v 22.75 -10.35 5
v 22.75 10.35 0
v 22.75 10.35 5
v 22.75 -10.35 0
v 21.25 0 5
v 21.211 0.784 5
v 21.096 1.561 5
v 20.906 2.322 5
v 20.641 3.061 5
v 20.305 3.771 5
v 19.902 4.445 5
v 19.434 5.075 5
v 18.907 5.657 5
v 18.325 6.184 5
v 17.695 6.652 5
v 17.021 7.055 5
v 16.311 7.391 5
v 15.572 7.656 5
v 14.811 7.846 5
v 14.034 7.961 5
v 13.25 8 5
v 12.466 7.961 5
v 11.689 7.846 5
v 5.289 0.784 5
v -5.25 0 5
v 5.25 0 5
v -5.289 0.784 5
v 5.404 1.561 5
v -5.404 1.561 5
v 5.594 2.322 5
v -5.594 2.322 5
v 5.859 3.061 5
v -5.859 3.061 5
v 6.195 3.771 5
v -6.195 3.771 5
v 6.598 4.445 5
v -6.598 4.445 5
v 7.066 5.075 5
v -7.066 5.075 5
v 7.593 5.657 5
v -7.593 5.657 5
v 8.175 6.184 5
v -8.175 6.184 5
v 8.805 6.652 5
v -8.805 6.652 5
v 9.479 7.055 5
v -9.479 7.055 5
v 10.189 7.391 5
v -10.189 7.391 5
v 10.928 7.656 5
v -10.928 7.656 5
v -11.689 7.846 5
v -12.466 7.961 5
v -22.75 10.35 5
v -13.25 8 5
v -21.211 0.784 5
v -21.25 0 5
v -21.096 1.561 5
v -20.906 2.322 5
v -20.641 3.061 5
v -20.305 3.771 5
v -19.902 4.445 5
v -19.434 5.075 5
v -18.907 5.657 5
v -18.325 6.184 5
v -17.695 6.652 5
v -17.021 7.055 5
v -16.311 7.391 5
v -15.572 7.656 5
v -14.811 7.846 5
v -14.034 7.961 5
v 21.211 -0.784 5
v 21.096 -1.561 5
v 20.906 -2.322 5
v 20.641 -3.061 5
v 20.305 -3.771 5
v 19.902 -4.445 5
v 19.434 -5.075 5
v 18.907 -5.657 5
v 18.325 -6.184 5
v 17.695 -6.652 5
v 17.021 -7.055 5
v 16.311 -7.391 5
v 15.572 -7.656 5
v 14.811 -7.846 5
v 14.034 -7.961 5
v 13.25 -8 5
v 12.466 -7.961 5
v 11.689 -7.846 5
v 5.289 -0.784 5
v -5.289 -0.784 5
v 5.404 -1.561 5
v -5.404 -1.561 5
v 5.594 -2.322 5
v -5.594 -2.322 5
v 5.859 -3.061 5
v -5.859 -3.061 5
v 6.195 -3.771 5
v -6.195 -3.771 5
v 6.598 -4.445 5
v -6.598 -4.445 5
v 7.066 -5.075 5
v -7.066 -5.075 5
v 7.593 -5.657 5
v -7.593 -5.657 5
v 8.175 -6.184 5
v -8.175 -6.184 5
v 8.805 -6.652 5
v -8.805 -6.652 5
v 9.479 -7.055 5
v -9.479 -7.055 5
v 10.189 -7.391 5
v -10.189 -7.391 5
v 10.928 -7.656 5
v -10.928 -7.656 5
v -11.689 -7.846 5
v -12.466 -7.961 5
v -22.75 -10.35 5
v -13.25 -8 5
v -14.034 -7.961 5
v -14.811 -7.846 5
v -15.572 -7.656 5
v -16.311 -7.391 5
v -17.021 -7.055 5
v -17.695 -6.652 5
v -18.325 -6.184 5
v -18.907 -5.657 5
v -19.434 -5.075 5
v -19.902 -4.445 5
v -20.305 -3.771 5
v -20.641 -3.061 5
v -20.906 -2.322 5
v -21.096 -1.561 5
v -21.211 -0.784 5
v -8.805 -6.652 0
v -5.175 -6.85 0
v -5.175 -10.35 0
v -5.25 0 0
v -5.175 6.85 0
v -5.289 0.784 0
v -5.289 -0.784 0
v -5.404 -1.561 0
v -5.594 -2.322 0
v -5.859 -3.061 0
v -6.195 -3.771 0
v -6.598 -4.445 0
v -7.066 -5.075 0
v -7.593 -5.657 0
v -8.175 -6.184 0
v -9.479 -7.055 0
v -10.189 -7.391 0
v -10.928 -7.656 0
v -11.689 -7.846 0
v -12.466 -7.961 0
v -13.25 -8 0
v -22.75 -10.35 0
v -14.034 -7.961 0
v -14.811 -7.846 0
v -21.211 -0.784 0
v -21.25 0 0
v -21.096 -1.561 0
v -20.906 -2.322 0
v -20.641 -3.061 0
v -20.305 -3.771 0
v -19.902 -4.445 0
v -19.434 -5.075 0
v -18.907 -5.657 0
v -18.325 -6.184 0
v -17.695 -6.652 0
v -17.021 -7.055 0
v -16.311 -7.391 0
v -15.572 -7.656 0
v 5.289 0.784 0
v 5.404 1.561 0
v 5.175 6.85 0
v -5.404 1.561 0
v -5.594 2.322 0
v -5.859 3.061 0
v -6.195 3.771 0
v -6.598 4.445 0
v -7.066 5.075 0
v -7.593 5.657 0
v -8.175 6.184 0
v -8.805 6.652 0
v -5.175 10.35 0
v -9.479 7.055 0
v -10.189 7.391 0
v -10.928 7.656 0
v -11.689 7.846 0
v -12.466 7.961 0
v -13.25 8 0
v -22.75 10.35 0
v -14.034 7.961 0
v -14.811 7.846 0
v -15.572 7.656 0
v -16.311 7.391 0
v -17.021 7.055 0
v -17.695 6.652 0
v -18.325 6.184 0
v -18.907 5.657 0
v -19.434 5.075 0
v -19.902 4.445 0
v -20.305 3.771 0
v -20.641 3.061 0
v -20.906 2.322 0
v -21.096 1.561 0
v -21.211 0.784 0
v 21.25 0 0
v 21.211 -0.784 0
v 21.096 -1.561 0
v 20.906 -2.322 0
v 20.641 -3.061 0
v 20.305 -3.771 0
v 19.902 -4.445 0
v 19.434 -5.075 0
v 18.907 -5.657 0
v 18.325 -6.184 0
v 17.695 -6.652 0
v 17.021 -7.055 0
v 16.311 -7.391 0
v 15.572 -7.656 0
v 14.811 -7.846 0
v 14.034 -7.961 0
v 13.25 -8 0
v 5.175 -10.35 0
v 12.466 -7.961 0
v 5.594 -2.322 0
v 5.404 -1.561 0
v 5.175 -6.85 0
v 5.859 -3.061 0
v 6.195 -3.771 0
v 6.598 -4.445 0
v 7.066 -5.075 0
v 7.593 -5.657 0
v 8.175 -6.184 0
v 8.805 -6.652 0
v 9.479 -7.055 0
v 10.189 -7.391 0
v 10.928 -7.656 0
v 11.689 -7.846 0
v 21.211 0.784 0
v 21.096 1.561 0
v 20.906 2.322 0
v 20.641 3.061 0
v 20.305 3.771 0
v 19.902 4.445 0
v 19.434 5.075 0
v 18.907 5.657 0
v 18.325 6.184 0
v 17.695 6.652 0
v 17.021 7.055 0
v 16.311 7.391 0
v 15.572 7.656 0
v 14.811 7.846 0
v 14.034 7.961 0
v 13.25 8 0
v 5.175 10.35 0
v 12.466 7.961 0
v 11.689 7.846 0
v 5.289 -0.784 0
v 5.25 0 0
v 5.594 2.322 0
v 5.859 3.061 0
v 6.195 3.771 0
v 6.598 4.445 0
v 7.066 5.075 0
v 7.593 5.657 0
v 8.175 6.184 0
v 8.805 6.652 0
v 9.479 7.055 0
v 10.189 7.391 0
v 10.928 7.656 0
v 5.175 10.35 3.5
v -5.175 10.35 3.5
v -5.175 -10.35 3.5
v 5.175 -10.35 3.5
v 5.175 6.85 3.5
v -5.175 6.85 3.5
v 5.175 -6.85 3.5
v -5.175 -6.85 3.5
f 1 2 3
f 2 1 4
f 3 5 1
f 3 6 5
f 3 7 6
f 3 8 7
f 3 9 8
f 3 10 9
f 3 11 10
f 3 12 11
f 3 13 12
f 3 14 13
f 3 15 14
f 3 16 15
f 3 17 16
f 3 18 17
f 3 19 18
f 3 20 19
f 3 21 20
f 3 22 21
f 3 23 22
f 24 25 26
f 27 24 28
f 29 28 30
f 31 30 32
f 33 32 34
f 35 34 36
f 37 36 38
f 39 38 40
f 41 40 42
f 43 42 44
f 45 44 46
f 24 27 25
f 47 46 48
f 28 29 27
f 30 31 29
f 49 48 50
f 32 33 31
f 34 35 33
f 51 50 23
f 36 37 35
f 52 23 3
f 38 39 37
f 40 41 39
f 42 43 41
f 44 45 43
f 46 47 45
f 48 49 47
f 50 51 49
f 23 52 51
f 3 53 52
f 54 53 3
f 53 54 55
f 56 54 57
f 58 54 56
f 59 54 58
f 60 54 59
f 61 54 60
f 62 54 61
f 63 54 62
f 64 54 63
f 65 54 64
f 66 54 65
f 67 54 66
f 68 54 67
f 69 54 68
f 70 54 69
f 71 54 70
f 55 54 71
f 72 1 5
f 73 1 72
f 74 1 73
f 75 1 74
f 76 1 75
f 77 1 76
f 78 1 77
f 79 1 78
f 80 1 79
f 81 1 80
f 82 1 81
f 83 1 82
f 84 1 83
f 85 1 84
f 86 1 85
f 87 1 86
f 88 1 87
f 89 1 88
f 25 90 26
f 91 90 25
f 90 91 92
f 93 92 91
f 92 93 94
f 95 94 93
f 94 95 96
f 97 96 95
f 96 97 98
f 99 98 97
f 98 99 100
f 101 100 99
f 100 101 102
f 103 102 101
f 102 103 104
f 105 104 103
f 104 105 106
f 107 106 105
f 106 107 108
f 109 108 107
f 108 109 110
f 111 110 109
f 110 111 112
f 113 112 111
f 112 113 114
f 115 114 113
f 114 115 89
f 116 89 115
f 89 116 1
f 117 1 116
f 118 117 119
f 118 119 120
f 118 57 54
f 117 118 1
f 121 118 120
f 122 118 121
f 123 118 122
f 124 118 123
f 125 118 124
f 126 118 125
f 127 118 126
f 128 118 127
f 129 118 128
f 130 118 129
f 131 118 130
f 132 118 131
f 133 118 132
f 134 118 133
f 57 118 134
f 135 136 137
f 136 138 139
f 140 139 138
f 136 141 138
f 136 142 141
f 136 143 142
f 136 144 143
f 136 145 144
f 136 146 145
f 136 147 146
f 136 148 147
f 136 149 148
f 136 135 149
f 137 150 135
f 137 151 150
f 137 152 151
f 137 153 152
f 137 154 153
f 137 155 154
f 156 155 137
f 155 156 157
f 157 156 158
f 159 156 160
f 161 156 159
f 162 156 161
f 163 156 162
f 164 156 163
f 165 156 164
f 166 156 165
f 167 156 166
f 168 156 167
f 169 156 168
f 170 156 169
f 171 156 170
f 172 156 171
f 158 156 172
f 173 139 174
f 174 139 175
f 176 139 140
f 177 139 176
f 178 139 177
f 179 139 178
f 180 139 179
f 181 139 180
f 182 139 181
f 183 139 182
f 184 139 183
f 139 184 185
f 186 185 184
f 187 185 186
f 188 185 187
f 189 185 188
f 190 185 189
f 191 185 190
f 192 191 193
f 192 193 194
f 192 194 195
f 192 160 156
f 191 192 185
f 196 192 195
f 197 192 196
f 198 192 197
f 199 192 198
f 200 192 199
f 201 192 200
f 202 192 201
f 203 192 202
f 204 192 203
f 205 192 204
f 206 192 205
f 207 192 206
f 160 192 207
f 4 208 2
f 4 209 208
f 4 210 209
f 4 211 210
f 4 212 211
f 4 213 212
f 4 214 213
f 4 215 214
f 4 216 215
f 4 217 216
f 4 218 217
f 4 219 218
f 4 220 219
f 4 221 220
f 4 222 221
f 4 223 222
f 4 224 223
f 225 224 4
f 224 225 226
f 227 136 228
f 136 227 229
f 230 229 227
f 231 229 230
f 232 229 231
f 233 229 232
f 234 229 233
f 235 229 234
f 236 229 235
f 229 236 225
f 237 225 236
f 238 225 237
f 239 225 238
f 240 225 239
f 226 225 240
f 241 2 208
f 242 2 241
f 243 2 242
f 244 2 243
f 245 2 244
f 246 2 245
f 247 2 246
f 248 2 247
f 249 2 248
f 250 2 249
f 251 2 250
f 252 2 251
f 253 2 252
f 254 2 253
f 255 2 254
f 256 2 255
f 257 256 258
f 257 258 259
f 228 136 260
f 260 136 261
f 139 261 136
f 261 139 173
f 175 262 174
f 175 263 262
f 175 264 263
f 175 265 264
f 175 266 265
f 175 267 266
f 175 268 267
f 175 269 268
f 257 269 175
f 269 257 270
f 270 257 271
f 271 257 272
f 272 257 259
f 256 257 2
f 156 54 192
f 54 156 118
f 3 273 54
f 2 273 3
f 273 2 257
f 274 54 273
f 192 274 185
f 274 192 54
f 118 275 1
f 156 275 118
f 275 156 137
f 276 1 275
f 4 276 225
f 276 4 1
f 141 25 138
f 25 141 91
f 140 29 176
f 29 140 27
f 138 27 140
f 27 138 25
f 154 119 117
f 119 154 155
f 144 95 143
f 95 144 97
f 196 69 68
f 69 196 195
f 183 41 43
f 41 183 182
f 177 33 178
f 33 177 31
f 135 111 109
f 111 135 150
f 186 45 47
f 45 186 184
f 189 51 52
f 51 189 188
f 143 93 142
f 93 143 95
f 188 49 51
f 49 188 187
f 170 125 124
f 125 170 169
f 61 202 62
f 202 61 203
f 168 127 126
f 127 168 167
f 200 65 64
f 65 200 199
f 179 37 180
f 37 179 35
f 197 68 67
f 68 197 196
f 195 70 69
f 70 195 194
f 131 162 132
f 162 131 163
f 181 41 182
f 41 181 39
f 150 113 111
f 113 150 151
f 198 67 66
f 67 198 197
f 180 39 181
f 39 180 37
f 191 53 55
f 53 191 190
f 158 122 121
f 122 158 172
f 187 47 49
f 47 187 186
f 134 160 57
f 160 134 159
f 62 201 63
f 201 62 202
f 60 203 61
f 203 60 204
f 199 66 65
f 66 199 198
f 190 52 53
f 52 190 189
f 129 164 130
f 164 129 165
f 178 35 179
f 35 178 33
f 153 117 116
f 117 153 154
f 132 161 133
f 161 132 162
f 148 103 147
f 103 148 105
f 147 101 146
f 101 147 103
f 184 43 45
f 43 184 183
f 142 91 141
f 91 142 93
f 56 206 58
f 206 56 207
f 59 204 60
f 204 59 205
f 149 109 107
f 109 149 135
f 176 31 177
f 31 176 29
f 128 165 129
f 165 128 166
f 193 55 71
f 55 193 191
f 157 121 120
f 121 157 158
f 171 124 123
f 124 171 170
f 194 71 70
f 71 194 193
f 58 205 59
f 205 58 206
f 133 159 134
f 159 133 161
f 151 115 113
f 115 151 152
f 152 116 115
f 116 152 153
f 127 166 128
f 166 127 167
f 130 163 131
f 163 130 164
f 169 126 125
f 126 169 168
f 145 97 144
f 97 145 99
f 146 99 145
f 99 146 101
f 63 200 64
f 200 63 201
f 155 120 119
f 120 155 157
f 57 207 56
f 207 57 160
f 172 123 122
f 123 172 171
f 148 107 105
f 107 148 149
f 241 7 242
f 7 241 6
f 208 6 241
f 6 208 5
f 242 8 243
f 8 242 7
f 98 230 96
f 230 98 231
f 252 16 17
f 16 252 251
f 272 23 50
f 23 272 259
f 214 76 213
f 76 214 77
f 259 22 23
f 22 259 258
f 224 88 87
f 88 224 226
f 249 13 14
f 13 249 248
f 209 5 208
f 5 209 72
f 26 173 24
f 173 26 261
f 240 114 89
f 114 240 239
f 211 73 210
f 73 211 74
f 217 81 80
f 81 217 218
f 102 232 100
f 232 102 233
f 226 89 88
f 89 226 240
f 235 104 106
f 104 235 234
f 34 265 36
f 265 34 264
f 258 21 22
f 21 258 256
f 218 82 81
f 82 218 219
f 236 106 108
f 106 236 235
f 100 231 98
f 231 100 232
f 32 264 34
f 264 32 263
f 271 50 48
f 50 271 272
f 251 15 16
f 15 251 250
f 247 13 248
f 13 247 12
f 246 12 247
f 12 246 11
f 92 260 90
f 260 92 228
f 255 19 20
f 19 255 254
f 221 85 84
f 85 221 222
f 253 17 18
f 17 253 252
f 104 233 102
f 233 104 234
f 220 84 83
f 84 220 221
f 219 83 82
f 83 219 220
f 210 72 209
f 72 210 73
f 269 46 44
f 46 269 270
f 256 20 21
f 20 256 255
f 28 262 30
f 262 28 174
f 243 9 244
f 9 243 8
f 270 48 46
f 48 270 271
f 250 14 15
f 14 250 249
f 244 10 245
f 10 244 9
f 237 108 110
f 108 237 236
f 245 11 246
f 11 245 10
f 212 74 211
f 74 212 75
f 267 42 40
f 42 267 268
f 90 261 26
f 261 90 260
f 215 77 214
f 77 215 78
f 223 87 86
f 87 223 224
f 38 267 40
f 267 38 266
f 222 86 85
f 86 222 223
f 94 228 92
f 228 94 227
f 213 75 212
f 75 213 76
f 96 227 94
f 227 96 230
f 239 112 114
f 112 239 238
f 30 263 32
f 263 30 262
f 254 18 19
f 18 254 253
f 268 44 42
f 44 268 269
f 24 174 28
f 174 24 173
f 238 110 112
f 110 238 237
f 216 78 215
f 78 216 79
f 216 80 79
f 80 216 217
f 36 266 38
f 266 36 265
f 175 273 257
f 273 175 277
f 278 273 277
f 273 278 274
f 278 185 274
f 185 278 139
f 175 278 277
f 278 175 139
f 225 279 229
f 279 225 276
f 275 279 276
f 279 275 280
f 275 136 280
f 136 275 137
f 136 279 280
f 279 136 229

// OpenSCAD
// Ultrasonic Sensor - Plate 

length = 45.5; // mm 
width = 20.70; // mm 
depth = 5; // mm - arbitrary thickness 

sensor_diameter = 16;//mm
sensor_separation = 10.5;//mm (10.42) 
crystal_length = 10.35;//mm  (10.32)
crystal_width = 3.5;//mm
crystal_height = 3.5; //mm (3.0)



difference() {
    translate([-length/2, -width/2,0]) cube([length, width, depth]);
    
    translate([-sensor_separation/2 - sensor_diameter/2, 0,0]) cylinder(depth, d=sensor_diameter,$fn=64);
    
    translate([sensor_separation/2 + sensor_diameter/2, 0,0]) cylinder(depth, d=sensor_diameter,$fn=64);
    
    translate([-crystal_length/2, width/2 - crystal_width, 0])cube([crystal_length, crystal_width, crystal_height]);
    
    translate([-crystal_length/2, - width/2 , 0])cube([crystal_length, crystal_width, crystal_height]);
}
